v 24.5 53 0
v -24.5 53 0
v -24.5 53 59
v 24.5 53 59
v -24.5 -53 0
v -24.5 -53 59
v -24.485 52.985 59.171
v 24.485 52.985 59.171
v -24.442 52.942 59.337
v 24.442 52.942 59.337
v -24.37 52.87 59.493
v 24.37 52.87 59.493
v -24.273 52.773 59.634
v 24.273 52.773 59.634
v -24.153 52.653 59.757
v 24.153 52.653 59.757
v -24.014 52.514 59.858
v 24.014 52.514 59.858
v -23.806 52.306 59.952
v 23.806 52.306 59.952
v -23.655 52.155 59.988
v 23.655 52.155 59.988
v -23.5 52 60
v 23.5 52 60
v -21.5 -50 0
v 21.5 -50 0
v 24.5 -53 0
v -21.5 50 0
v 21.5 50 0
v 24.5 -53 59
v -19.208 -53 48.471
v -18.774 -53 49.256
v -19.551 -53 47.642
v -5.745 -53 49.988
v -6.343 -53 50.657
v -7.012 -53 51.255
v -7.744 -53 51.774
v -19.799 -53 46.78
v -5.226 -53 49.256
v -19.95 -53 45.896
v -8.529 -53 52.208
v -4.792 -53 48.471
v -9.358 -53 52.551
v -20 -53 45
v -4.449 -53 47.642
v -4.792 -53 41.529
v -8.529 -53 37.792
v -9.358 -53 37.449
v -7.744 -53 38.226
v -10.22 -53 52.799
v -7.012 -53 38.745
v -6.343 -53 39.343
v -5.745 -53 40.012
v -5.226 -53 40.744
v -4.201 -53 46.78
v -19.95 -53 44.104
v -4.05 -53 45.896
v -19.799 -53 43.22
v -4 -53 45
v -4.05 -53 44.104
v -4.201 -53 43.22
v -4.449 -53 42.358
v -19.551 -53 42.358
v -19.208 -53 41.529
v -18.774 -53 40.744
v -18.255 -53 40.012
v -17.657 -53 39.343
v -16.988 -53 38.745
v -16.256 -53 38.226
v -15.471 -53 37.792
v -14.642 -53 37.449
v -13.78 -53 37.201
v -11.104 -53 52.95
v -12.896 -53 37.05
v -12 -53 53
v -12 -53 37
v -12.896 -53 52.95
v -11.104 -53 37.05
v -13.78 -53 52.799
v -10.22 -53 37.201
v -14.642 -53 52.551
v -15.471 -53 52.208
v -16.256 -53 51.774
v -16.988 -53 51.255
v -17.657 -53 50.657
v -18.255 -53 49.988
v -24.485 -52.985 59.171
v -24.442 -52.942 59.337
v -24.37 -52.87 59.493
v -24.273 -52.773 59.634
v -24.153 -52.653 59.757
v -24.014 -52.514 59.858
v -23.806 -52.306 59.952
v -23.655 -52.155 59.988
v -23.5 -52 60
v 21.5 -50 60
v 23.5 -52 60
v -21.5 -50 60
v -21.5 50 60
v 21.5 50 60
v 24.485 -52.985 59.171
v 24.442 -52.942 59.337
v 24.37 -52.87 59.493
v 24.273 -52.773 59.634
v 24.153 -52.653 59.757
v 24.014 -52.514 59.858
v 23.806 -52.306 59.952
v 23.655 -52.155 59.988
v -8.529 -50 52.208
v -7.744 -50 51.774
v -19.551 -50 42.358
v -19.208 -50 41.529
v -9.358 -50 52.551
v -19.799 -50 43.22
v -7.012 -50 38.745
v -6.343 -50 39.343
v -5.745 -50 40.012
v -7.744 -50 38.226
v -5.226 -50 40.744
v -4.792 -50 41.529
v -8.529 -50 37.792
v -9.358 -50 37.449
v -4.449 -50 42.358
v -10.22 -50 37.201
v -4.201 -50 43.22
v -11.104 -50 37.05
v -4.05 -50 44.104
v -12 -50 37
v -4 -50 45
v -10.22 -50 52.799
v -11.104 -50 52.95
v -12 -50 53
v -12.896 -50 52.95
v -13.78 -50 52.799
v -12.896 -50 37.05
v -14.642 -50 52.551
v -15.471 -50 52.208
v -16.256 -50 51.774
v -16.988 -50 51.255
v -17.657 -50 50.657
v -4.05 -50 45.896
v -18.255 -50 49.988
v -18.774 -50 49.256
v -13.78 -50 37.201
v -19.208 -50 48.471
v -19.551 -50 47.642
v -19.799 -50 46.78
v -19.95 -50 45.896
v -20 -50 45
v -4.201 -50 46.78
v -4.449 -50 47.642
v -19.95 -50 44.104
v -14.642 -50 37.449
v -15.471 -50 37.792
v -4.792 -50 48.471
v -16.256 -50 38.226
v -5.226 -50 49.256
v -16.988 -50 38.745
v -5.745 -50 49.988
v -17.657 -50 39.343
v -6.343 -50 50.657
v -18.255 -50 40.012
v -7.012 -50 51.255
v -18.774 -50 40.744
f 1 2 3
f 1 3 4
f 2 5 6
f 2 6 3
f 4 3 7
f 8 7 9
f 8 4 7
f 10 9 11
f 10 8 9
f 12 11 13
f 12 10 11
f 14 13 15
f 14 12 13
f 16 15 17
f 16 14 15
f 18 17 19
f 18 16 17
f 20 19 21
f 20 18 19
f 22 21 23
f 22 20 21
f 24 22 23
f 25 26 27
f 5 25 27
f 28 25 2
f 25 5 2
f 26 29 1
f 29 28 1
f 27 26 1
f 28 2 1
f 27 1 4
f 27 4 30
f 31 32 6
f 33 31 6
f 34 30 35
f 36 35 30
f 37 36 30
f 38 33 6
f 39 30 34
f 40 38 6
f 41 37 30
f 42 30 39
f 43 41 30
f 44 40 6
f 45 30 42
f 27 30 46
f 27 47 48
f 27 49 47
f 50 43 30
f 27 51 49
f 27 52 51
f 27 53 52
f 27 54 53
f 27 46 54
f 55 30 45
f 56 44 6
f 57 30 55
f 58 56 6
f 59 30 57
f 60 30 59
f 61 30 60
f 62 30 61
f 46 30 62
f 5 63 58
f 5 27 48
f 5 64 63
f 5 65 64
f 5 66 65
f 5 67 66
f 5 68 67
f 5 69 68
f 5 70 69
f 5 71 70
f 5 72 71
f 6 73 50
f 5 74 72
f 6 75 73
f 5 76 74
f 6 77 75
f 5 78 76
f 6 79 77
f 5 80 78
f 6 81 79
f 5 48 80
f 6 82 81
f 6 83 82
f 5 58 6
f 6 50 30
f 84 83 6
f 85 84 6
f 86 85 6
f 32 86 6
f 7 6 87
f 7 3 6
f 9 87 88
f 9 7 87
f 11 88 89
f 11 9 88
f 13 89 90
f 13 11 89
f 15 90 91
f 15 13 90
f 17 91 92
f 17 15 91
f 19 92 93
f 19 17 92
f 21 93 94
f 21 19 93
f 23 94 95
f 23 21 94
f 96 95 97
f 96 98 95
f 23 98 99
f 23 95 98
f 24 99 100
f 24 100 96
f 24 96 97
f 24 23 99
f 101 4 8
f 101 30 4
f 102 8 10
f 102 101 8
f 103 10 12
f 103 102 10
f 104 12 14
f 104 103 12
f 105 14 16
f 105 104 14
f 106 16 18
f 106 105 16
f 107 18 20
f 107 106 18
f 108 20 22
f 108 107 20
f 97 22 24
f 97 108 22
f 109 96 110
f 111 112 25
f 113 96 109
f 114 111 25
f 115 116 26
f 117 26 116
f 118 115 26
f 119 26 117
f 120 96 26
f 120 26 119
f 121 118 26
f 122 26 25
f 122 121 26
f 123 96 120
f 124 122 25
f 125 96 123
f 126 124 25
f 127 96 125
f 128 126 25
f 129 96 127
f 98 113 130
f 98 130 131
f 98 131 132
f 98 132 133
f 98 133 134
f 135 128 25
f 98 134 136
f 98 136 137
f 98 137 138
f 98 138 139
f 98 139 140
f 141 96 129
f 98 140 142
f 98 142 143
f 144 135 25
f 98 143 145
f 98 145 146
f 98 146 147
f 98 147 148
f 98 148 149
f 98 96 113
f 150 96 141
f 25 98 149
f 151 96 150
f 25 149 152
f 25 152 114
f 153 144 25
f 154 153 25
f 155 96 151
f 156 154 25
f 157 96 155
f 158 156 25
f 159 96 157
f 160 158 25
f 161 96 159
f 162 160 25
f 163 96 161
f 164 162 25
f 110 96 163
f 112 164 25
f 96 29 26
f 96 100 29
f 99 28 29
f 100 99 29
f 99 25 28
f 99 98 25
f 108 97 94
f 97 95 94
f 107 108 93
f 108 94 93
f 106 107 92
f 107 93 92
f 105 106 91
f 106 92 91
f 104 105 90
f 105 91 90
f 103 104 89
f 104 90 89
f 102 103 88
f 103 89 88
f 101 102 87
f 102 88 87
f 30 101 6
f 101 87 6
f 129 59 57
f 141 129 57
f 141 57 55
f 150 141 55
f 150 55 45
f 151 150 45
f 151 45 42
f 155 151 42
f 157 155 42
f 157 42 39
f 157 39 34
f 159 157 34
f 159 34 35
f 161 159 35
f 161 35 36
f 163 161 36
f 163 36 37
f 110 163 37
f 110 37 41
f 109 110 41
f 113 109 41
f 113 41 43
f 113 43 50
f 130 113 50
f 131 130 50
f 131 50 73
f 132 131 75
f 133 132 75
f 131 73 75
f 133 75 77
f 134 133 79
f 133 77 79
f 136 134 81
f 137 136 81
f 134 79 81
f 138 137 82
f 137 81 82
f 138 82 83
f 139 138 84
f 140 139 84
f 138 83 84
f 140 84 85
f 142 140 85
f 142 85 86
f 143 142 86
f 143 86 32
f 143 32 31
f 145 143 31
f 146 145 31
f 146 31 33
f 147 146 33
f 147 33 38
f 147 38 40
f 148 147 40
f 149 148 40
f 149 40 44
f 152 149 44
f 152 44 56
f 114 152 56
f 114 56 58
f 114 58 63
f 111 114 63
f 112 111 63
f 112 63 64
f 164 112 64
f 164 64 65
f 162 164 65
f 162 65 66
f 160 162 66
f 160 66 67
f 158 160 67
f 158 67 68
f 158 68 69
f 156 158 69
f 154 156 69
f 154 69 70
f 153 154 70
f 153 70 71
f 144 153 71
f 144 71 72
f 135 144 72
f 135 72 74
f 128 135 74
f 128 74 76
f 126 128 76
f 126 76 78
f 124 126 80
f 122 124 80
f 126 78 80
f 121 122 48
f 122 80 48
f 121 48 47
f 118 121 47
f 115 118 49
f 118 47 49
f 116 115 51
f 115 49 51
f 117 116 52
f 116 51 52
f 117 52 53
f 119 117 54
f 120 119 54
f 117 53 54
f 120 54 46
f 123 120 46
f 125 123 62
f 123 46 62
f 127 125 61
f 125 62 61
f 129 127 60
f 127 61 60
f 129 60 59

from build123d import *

# Parameters (mm, degrees)
SKETCH_W        = 49
SKETCH_H        = 106
PAD_DEPTH       = 60
SKETCH001_W     = 43
SKETCH001_H     = 100
POCKET_DEPTH    = 60.001
FILLET_R        = 1
SKETCH002_R     = 8
POCKET001_DEPTH = 3


with BuildPart() as part:
    # Sketch → Pad (new body)
    with BuildSketch(Plane.XY):
        Rectangle(SKETCH_W, SKETCH_H)
    extrude(amount=PAD_DEPTH)

    # Sketch001 → Pocket (cut, through all)
    with BuildSketch(Plane.XY.offset(60)):
        Rectangle(SKETCH001_W, SKETCH001_H)
    extrude(amount=-POCKET_DEPTH, mode=Mode.SUBTRACT)

    # Fillet
    fillet_edges = [part.edges().sort_by_distance(p)[0] for p in [
        (0, 53, 60),
        (24.5, 0, 60),
        (-24.5, 0, 60),
        (0, -53, 60),
    ]]
    fillet(fillet_edges, radius=FILLET_R)

    # Sketch002 → Pocket001 (cut)
    with BuildSketch(Plane.XZ.offset(53)):
        with Locations((-12, 45)):
            Circle(SKETCH002_R)
    extrude(amount=-POCKET001_DEPTH, mode=Mode.SUBTRACT)


solid = part.part
